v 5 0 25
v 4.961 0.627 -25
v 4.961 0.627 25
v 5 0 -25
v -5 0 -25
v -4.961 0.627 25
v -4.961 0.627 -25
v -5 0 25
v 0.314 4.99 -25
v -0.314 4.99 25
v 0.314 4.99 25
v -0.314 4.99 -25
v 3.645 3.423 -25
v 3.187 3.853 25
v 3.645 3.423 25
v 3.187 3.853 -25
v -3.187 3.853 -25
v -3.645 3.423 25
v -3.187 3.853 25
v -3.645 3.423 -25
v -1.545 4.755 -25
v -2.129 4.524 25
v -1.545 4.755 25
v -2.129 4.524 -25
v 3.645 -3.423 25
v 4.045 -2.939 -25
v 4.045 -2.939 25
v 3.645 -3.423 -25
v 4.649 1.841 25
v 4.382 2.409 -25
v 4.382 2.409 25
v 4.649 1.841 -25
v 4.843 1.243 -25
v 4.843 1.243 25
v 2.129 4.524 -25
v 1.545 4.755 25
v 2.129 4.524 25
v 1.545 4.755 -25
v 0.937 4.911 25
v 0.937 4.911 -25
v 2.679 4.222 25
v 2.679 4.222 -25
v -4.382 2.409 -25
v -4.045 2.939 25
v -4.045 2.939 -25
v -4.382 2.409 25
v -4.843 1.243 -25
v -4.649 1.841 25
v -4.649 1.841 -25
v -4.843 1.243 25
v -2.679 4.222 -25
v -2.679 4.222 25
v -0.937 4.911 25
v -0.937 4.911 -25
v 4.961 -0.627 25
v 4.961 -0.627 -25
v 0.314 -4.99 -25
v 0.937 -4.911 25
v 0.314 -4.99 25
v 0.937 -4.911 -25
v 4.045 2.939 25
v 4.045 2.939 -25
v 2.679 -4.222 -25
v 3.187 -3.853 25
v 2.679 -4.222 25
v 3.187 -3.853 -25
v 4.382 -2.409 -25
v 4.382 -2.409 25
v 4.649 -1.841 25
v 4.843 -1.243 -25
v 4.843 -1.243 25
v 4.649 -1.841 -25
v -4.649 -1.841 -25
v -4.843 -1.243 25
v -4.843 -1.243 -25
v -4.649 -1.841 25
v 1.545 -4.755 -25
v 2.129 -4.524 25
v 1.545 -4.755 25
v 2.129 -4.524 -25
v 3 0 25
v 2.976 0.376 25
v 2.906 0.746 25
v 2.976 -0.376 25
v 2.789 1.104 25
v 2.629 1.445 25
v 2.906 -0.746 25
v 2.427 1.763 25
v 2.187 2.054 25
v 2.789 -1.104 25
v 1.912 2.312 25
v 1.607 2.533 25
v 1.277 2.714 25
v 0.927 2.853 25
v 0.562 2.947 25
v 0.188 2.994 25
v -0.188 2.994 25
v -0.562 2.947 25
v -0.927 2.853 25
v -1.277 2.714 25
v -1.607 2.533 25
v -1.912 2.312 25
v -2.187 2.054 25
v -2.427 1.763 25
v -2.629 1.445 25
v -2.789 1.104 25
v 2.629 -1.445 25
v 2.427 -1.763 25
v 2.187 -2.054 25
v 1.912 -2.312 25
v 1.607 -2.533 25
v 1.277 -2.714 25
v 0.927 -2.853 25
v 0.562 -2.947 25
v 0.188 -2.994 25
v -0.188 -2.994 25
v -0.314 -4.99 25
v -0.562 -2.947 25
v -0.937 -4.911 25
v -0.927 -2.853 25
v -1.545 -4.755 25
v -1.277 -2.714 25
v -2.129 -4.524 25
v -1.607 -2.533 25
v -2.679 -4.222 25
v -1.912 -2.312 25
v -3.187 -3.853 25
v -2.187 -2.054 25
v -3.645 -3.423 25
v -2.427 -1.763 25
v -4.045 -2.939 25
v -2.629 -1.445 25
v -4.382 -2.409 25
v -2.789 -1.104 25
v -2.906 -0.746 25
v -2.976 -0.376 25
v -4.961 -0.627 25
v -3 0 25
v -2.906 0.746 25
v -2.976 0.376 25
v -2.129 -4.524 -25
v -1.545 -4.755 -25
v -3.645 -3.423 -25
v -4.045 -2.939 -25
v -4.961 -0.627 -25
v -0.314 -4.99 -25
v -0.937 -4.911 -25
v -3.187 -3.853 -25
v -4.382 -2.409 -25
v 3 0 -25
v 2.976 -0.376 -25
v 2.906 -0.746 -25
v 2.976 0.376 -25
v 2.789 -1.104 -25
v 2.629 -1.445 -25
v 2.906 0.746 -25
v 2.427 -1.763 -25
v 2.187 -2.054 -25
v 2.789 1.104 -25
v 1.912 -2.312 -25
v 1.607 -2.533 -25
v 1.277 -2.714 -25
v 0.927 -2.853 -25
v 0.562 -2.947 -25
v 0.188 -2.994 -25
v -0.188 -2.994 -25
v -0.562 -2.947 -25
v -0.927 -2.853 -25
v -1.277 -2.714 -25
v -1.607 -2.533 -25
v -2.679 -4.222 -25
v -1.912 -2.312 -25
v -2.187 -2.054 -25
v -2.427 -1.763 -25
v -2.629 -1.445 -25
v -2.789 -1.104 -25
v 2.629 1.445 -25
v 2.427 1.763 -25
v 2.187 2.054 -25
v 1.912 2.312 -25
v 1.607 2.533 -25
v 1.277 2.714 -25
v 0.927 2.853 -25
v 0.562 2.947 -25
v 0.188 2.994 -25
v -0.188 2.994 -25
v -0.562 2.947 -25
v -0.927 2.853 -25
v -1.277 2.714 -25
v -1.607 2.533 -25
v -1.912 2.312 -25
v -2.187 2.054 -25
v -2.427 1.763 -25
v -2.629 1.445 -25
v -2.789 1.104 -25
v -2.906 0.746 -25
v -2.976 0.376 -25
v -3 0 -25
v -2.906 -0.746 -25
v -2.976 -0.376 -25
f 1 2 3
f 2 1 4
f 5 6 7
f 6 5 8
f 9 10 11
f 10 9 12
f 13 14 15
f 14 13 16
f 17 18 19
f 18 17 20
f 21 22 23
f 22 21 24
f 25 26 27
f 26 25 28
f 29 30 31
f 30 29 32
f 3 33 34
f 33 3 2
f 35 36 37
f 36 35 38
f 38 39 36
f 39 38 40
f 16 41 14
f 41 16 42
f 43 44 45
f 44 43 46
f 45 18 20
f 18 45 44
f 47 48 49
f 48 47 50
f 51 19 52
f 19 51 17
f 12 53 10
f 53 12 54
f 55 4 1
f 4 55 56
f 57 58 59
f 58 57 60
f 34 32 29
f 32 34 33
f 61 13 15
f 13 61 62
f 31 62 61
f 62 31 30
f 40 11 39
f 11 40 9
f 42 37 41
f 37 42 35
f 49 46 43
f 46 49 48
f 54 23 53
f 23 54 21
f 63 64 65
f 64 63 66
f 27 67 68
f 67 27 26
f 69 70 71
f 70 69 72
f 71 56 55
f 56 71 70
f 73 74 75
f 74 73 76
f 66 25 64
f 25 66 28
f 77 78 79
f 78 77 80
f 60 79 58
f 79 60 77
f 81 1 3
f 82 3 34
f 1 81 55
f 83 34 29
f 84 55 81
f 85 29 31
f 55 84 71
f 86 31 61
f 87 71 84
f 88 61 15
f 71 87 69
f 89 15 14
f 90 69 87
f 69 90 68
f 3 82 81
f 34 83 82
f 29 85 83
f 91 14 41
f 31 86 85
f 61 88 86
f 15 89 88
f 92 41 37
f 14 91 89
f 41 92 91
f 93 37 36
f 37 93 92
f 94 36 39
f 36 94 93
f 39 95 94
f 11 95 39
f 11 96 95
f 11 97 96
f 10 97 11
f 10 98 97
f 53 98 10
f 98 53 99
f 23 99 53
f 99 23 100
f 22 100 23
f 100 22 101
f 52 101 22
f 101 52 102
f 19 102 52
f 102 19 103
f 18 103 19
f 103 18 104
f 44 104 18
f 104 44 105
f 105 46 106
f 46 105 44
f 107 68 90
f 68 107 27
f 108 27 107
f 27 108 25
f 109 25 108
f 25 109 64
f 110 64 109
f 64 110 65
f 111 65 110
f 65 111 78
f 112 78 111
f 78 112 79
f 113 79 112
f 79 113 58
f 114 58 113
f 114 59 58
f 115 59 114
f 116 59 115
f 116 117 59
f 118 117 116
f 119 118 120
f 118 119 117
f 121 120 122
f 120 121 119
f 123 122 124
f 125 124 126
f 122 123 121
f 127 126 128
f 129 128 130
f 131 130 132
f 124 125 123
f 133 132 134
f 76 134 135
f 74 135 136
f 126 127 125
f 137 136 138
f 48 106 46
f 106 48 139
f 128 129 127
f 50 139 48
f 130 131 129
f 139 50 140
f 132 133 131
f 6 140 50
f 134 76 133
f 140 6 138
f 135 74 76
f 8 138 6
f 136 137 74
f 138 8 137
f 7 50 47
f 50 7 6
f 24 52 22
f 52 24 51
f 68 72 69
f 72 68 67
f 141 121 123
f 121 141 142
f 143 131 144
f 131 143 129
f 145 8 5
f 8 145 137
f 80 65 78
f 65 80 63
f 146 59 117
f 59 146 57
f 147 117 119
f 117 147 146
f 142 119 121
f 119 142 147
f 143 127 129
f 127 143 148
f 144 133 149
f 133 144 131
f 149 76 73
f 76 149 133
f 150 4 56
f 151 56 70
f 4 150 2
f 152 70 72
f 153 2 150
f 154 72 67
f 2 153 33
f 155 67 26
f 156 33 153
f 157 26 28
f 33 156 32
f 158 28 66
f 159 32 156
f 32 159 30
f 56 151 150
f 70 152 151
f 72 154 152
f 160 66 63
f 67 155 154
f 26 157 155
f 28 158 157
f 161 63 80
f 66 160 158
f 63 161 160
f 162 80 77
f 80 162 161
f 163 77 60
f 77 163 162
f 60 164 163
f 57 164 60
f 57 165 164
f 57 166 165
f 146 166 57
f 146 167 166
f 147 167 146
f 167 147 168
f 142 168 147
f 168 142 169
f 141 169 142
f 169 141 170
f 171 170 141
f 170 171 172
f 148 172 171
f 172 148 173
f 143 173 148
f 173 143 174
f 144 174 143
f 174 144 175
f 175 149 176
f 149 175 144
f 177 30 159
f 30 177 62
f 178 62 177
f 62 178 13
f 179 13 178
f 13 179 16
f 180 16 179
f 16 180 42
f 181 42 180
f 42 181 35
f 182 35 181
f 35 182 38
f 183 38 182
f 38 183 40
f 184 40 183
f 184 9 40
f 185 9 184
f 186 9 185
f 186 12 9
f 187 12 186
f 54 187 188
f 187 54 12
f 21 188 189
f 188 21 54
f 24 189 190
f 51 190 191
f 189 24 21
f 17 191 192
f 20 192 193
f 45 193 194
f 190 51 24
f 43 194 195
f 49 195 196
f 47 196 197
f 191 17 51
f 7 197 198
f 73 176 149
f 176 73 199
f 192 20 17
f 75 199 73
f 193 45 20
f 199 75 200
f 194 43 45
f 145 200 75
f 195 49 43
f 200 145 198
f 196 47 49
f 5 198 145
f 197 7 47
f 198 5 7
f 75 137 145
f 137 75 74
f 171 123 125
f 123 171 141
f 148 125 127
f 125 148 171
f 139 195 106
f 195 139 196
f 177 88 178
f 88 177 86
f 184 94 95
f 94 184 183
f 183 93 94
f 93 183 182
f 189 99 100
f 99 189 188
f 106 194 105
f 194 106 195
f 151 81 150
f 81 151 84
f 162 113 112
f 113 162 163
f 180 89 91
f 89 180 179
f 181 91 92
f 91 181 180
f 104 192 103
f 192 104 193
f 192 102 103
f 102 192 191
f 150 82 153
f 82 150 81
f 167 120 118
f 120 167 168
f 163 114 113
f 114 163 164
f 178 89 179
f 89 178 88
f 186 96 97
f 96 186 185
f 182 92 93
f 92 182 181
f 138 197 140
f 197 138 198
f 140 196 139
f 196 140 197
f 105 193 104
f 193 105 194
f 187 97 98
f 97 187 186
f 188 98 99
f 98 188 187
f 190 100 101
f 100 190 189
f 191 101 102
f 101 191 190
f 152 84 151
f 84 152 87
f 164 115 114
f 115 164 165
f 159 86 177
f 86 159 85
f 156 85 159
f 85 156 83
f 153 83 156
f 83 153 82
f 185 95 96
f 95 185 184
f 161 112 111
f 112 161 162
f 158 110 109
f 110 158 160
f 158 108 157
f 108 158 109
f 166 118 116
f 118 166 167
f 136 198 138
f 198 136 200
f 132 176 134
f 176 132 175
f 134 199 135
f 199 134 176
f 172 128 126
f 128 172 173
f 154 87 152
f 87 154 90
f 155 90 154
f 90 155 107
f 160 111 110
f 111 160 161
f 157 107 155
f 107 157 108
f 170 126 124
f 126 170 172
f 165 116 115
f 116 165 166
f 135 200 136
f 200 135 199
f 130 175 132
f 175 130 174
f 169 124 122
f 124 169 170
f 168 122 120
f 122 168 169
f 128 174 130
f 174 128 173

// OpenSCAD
$fn = 50;


difference() {
	union() {
		translate(v = [0, 0, -25.0000000000]) {
			cylinder(h = 50, r = 5.0000000000);
		}
	}
	union() {
		translate(v = [0, 0, -100.0000000000]) {
			cylinder(h = 200, r = 3.0000000000);
		}
	}
}
